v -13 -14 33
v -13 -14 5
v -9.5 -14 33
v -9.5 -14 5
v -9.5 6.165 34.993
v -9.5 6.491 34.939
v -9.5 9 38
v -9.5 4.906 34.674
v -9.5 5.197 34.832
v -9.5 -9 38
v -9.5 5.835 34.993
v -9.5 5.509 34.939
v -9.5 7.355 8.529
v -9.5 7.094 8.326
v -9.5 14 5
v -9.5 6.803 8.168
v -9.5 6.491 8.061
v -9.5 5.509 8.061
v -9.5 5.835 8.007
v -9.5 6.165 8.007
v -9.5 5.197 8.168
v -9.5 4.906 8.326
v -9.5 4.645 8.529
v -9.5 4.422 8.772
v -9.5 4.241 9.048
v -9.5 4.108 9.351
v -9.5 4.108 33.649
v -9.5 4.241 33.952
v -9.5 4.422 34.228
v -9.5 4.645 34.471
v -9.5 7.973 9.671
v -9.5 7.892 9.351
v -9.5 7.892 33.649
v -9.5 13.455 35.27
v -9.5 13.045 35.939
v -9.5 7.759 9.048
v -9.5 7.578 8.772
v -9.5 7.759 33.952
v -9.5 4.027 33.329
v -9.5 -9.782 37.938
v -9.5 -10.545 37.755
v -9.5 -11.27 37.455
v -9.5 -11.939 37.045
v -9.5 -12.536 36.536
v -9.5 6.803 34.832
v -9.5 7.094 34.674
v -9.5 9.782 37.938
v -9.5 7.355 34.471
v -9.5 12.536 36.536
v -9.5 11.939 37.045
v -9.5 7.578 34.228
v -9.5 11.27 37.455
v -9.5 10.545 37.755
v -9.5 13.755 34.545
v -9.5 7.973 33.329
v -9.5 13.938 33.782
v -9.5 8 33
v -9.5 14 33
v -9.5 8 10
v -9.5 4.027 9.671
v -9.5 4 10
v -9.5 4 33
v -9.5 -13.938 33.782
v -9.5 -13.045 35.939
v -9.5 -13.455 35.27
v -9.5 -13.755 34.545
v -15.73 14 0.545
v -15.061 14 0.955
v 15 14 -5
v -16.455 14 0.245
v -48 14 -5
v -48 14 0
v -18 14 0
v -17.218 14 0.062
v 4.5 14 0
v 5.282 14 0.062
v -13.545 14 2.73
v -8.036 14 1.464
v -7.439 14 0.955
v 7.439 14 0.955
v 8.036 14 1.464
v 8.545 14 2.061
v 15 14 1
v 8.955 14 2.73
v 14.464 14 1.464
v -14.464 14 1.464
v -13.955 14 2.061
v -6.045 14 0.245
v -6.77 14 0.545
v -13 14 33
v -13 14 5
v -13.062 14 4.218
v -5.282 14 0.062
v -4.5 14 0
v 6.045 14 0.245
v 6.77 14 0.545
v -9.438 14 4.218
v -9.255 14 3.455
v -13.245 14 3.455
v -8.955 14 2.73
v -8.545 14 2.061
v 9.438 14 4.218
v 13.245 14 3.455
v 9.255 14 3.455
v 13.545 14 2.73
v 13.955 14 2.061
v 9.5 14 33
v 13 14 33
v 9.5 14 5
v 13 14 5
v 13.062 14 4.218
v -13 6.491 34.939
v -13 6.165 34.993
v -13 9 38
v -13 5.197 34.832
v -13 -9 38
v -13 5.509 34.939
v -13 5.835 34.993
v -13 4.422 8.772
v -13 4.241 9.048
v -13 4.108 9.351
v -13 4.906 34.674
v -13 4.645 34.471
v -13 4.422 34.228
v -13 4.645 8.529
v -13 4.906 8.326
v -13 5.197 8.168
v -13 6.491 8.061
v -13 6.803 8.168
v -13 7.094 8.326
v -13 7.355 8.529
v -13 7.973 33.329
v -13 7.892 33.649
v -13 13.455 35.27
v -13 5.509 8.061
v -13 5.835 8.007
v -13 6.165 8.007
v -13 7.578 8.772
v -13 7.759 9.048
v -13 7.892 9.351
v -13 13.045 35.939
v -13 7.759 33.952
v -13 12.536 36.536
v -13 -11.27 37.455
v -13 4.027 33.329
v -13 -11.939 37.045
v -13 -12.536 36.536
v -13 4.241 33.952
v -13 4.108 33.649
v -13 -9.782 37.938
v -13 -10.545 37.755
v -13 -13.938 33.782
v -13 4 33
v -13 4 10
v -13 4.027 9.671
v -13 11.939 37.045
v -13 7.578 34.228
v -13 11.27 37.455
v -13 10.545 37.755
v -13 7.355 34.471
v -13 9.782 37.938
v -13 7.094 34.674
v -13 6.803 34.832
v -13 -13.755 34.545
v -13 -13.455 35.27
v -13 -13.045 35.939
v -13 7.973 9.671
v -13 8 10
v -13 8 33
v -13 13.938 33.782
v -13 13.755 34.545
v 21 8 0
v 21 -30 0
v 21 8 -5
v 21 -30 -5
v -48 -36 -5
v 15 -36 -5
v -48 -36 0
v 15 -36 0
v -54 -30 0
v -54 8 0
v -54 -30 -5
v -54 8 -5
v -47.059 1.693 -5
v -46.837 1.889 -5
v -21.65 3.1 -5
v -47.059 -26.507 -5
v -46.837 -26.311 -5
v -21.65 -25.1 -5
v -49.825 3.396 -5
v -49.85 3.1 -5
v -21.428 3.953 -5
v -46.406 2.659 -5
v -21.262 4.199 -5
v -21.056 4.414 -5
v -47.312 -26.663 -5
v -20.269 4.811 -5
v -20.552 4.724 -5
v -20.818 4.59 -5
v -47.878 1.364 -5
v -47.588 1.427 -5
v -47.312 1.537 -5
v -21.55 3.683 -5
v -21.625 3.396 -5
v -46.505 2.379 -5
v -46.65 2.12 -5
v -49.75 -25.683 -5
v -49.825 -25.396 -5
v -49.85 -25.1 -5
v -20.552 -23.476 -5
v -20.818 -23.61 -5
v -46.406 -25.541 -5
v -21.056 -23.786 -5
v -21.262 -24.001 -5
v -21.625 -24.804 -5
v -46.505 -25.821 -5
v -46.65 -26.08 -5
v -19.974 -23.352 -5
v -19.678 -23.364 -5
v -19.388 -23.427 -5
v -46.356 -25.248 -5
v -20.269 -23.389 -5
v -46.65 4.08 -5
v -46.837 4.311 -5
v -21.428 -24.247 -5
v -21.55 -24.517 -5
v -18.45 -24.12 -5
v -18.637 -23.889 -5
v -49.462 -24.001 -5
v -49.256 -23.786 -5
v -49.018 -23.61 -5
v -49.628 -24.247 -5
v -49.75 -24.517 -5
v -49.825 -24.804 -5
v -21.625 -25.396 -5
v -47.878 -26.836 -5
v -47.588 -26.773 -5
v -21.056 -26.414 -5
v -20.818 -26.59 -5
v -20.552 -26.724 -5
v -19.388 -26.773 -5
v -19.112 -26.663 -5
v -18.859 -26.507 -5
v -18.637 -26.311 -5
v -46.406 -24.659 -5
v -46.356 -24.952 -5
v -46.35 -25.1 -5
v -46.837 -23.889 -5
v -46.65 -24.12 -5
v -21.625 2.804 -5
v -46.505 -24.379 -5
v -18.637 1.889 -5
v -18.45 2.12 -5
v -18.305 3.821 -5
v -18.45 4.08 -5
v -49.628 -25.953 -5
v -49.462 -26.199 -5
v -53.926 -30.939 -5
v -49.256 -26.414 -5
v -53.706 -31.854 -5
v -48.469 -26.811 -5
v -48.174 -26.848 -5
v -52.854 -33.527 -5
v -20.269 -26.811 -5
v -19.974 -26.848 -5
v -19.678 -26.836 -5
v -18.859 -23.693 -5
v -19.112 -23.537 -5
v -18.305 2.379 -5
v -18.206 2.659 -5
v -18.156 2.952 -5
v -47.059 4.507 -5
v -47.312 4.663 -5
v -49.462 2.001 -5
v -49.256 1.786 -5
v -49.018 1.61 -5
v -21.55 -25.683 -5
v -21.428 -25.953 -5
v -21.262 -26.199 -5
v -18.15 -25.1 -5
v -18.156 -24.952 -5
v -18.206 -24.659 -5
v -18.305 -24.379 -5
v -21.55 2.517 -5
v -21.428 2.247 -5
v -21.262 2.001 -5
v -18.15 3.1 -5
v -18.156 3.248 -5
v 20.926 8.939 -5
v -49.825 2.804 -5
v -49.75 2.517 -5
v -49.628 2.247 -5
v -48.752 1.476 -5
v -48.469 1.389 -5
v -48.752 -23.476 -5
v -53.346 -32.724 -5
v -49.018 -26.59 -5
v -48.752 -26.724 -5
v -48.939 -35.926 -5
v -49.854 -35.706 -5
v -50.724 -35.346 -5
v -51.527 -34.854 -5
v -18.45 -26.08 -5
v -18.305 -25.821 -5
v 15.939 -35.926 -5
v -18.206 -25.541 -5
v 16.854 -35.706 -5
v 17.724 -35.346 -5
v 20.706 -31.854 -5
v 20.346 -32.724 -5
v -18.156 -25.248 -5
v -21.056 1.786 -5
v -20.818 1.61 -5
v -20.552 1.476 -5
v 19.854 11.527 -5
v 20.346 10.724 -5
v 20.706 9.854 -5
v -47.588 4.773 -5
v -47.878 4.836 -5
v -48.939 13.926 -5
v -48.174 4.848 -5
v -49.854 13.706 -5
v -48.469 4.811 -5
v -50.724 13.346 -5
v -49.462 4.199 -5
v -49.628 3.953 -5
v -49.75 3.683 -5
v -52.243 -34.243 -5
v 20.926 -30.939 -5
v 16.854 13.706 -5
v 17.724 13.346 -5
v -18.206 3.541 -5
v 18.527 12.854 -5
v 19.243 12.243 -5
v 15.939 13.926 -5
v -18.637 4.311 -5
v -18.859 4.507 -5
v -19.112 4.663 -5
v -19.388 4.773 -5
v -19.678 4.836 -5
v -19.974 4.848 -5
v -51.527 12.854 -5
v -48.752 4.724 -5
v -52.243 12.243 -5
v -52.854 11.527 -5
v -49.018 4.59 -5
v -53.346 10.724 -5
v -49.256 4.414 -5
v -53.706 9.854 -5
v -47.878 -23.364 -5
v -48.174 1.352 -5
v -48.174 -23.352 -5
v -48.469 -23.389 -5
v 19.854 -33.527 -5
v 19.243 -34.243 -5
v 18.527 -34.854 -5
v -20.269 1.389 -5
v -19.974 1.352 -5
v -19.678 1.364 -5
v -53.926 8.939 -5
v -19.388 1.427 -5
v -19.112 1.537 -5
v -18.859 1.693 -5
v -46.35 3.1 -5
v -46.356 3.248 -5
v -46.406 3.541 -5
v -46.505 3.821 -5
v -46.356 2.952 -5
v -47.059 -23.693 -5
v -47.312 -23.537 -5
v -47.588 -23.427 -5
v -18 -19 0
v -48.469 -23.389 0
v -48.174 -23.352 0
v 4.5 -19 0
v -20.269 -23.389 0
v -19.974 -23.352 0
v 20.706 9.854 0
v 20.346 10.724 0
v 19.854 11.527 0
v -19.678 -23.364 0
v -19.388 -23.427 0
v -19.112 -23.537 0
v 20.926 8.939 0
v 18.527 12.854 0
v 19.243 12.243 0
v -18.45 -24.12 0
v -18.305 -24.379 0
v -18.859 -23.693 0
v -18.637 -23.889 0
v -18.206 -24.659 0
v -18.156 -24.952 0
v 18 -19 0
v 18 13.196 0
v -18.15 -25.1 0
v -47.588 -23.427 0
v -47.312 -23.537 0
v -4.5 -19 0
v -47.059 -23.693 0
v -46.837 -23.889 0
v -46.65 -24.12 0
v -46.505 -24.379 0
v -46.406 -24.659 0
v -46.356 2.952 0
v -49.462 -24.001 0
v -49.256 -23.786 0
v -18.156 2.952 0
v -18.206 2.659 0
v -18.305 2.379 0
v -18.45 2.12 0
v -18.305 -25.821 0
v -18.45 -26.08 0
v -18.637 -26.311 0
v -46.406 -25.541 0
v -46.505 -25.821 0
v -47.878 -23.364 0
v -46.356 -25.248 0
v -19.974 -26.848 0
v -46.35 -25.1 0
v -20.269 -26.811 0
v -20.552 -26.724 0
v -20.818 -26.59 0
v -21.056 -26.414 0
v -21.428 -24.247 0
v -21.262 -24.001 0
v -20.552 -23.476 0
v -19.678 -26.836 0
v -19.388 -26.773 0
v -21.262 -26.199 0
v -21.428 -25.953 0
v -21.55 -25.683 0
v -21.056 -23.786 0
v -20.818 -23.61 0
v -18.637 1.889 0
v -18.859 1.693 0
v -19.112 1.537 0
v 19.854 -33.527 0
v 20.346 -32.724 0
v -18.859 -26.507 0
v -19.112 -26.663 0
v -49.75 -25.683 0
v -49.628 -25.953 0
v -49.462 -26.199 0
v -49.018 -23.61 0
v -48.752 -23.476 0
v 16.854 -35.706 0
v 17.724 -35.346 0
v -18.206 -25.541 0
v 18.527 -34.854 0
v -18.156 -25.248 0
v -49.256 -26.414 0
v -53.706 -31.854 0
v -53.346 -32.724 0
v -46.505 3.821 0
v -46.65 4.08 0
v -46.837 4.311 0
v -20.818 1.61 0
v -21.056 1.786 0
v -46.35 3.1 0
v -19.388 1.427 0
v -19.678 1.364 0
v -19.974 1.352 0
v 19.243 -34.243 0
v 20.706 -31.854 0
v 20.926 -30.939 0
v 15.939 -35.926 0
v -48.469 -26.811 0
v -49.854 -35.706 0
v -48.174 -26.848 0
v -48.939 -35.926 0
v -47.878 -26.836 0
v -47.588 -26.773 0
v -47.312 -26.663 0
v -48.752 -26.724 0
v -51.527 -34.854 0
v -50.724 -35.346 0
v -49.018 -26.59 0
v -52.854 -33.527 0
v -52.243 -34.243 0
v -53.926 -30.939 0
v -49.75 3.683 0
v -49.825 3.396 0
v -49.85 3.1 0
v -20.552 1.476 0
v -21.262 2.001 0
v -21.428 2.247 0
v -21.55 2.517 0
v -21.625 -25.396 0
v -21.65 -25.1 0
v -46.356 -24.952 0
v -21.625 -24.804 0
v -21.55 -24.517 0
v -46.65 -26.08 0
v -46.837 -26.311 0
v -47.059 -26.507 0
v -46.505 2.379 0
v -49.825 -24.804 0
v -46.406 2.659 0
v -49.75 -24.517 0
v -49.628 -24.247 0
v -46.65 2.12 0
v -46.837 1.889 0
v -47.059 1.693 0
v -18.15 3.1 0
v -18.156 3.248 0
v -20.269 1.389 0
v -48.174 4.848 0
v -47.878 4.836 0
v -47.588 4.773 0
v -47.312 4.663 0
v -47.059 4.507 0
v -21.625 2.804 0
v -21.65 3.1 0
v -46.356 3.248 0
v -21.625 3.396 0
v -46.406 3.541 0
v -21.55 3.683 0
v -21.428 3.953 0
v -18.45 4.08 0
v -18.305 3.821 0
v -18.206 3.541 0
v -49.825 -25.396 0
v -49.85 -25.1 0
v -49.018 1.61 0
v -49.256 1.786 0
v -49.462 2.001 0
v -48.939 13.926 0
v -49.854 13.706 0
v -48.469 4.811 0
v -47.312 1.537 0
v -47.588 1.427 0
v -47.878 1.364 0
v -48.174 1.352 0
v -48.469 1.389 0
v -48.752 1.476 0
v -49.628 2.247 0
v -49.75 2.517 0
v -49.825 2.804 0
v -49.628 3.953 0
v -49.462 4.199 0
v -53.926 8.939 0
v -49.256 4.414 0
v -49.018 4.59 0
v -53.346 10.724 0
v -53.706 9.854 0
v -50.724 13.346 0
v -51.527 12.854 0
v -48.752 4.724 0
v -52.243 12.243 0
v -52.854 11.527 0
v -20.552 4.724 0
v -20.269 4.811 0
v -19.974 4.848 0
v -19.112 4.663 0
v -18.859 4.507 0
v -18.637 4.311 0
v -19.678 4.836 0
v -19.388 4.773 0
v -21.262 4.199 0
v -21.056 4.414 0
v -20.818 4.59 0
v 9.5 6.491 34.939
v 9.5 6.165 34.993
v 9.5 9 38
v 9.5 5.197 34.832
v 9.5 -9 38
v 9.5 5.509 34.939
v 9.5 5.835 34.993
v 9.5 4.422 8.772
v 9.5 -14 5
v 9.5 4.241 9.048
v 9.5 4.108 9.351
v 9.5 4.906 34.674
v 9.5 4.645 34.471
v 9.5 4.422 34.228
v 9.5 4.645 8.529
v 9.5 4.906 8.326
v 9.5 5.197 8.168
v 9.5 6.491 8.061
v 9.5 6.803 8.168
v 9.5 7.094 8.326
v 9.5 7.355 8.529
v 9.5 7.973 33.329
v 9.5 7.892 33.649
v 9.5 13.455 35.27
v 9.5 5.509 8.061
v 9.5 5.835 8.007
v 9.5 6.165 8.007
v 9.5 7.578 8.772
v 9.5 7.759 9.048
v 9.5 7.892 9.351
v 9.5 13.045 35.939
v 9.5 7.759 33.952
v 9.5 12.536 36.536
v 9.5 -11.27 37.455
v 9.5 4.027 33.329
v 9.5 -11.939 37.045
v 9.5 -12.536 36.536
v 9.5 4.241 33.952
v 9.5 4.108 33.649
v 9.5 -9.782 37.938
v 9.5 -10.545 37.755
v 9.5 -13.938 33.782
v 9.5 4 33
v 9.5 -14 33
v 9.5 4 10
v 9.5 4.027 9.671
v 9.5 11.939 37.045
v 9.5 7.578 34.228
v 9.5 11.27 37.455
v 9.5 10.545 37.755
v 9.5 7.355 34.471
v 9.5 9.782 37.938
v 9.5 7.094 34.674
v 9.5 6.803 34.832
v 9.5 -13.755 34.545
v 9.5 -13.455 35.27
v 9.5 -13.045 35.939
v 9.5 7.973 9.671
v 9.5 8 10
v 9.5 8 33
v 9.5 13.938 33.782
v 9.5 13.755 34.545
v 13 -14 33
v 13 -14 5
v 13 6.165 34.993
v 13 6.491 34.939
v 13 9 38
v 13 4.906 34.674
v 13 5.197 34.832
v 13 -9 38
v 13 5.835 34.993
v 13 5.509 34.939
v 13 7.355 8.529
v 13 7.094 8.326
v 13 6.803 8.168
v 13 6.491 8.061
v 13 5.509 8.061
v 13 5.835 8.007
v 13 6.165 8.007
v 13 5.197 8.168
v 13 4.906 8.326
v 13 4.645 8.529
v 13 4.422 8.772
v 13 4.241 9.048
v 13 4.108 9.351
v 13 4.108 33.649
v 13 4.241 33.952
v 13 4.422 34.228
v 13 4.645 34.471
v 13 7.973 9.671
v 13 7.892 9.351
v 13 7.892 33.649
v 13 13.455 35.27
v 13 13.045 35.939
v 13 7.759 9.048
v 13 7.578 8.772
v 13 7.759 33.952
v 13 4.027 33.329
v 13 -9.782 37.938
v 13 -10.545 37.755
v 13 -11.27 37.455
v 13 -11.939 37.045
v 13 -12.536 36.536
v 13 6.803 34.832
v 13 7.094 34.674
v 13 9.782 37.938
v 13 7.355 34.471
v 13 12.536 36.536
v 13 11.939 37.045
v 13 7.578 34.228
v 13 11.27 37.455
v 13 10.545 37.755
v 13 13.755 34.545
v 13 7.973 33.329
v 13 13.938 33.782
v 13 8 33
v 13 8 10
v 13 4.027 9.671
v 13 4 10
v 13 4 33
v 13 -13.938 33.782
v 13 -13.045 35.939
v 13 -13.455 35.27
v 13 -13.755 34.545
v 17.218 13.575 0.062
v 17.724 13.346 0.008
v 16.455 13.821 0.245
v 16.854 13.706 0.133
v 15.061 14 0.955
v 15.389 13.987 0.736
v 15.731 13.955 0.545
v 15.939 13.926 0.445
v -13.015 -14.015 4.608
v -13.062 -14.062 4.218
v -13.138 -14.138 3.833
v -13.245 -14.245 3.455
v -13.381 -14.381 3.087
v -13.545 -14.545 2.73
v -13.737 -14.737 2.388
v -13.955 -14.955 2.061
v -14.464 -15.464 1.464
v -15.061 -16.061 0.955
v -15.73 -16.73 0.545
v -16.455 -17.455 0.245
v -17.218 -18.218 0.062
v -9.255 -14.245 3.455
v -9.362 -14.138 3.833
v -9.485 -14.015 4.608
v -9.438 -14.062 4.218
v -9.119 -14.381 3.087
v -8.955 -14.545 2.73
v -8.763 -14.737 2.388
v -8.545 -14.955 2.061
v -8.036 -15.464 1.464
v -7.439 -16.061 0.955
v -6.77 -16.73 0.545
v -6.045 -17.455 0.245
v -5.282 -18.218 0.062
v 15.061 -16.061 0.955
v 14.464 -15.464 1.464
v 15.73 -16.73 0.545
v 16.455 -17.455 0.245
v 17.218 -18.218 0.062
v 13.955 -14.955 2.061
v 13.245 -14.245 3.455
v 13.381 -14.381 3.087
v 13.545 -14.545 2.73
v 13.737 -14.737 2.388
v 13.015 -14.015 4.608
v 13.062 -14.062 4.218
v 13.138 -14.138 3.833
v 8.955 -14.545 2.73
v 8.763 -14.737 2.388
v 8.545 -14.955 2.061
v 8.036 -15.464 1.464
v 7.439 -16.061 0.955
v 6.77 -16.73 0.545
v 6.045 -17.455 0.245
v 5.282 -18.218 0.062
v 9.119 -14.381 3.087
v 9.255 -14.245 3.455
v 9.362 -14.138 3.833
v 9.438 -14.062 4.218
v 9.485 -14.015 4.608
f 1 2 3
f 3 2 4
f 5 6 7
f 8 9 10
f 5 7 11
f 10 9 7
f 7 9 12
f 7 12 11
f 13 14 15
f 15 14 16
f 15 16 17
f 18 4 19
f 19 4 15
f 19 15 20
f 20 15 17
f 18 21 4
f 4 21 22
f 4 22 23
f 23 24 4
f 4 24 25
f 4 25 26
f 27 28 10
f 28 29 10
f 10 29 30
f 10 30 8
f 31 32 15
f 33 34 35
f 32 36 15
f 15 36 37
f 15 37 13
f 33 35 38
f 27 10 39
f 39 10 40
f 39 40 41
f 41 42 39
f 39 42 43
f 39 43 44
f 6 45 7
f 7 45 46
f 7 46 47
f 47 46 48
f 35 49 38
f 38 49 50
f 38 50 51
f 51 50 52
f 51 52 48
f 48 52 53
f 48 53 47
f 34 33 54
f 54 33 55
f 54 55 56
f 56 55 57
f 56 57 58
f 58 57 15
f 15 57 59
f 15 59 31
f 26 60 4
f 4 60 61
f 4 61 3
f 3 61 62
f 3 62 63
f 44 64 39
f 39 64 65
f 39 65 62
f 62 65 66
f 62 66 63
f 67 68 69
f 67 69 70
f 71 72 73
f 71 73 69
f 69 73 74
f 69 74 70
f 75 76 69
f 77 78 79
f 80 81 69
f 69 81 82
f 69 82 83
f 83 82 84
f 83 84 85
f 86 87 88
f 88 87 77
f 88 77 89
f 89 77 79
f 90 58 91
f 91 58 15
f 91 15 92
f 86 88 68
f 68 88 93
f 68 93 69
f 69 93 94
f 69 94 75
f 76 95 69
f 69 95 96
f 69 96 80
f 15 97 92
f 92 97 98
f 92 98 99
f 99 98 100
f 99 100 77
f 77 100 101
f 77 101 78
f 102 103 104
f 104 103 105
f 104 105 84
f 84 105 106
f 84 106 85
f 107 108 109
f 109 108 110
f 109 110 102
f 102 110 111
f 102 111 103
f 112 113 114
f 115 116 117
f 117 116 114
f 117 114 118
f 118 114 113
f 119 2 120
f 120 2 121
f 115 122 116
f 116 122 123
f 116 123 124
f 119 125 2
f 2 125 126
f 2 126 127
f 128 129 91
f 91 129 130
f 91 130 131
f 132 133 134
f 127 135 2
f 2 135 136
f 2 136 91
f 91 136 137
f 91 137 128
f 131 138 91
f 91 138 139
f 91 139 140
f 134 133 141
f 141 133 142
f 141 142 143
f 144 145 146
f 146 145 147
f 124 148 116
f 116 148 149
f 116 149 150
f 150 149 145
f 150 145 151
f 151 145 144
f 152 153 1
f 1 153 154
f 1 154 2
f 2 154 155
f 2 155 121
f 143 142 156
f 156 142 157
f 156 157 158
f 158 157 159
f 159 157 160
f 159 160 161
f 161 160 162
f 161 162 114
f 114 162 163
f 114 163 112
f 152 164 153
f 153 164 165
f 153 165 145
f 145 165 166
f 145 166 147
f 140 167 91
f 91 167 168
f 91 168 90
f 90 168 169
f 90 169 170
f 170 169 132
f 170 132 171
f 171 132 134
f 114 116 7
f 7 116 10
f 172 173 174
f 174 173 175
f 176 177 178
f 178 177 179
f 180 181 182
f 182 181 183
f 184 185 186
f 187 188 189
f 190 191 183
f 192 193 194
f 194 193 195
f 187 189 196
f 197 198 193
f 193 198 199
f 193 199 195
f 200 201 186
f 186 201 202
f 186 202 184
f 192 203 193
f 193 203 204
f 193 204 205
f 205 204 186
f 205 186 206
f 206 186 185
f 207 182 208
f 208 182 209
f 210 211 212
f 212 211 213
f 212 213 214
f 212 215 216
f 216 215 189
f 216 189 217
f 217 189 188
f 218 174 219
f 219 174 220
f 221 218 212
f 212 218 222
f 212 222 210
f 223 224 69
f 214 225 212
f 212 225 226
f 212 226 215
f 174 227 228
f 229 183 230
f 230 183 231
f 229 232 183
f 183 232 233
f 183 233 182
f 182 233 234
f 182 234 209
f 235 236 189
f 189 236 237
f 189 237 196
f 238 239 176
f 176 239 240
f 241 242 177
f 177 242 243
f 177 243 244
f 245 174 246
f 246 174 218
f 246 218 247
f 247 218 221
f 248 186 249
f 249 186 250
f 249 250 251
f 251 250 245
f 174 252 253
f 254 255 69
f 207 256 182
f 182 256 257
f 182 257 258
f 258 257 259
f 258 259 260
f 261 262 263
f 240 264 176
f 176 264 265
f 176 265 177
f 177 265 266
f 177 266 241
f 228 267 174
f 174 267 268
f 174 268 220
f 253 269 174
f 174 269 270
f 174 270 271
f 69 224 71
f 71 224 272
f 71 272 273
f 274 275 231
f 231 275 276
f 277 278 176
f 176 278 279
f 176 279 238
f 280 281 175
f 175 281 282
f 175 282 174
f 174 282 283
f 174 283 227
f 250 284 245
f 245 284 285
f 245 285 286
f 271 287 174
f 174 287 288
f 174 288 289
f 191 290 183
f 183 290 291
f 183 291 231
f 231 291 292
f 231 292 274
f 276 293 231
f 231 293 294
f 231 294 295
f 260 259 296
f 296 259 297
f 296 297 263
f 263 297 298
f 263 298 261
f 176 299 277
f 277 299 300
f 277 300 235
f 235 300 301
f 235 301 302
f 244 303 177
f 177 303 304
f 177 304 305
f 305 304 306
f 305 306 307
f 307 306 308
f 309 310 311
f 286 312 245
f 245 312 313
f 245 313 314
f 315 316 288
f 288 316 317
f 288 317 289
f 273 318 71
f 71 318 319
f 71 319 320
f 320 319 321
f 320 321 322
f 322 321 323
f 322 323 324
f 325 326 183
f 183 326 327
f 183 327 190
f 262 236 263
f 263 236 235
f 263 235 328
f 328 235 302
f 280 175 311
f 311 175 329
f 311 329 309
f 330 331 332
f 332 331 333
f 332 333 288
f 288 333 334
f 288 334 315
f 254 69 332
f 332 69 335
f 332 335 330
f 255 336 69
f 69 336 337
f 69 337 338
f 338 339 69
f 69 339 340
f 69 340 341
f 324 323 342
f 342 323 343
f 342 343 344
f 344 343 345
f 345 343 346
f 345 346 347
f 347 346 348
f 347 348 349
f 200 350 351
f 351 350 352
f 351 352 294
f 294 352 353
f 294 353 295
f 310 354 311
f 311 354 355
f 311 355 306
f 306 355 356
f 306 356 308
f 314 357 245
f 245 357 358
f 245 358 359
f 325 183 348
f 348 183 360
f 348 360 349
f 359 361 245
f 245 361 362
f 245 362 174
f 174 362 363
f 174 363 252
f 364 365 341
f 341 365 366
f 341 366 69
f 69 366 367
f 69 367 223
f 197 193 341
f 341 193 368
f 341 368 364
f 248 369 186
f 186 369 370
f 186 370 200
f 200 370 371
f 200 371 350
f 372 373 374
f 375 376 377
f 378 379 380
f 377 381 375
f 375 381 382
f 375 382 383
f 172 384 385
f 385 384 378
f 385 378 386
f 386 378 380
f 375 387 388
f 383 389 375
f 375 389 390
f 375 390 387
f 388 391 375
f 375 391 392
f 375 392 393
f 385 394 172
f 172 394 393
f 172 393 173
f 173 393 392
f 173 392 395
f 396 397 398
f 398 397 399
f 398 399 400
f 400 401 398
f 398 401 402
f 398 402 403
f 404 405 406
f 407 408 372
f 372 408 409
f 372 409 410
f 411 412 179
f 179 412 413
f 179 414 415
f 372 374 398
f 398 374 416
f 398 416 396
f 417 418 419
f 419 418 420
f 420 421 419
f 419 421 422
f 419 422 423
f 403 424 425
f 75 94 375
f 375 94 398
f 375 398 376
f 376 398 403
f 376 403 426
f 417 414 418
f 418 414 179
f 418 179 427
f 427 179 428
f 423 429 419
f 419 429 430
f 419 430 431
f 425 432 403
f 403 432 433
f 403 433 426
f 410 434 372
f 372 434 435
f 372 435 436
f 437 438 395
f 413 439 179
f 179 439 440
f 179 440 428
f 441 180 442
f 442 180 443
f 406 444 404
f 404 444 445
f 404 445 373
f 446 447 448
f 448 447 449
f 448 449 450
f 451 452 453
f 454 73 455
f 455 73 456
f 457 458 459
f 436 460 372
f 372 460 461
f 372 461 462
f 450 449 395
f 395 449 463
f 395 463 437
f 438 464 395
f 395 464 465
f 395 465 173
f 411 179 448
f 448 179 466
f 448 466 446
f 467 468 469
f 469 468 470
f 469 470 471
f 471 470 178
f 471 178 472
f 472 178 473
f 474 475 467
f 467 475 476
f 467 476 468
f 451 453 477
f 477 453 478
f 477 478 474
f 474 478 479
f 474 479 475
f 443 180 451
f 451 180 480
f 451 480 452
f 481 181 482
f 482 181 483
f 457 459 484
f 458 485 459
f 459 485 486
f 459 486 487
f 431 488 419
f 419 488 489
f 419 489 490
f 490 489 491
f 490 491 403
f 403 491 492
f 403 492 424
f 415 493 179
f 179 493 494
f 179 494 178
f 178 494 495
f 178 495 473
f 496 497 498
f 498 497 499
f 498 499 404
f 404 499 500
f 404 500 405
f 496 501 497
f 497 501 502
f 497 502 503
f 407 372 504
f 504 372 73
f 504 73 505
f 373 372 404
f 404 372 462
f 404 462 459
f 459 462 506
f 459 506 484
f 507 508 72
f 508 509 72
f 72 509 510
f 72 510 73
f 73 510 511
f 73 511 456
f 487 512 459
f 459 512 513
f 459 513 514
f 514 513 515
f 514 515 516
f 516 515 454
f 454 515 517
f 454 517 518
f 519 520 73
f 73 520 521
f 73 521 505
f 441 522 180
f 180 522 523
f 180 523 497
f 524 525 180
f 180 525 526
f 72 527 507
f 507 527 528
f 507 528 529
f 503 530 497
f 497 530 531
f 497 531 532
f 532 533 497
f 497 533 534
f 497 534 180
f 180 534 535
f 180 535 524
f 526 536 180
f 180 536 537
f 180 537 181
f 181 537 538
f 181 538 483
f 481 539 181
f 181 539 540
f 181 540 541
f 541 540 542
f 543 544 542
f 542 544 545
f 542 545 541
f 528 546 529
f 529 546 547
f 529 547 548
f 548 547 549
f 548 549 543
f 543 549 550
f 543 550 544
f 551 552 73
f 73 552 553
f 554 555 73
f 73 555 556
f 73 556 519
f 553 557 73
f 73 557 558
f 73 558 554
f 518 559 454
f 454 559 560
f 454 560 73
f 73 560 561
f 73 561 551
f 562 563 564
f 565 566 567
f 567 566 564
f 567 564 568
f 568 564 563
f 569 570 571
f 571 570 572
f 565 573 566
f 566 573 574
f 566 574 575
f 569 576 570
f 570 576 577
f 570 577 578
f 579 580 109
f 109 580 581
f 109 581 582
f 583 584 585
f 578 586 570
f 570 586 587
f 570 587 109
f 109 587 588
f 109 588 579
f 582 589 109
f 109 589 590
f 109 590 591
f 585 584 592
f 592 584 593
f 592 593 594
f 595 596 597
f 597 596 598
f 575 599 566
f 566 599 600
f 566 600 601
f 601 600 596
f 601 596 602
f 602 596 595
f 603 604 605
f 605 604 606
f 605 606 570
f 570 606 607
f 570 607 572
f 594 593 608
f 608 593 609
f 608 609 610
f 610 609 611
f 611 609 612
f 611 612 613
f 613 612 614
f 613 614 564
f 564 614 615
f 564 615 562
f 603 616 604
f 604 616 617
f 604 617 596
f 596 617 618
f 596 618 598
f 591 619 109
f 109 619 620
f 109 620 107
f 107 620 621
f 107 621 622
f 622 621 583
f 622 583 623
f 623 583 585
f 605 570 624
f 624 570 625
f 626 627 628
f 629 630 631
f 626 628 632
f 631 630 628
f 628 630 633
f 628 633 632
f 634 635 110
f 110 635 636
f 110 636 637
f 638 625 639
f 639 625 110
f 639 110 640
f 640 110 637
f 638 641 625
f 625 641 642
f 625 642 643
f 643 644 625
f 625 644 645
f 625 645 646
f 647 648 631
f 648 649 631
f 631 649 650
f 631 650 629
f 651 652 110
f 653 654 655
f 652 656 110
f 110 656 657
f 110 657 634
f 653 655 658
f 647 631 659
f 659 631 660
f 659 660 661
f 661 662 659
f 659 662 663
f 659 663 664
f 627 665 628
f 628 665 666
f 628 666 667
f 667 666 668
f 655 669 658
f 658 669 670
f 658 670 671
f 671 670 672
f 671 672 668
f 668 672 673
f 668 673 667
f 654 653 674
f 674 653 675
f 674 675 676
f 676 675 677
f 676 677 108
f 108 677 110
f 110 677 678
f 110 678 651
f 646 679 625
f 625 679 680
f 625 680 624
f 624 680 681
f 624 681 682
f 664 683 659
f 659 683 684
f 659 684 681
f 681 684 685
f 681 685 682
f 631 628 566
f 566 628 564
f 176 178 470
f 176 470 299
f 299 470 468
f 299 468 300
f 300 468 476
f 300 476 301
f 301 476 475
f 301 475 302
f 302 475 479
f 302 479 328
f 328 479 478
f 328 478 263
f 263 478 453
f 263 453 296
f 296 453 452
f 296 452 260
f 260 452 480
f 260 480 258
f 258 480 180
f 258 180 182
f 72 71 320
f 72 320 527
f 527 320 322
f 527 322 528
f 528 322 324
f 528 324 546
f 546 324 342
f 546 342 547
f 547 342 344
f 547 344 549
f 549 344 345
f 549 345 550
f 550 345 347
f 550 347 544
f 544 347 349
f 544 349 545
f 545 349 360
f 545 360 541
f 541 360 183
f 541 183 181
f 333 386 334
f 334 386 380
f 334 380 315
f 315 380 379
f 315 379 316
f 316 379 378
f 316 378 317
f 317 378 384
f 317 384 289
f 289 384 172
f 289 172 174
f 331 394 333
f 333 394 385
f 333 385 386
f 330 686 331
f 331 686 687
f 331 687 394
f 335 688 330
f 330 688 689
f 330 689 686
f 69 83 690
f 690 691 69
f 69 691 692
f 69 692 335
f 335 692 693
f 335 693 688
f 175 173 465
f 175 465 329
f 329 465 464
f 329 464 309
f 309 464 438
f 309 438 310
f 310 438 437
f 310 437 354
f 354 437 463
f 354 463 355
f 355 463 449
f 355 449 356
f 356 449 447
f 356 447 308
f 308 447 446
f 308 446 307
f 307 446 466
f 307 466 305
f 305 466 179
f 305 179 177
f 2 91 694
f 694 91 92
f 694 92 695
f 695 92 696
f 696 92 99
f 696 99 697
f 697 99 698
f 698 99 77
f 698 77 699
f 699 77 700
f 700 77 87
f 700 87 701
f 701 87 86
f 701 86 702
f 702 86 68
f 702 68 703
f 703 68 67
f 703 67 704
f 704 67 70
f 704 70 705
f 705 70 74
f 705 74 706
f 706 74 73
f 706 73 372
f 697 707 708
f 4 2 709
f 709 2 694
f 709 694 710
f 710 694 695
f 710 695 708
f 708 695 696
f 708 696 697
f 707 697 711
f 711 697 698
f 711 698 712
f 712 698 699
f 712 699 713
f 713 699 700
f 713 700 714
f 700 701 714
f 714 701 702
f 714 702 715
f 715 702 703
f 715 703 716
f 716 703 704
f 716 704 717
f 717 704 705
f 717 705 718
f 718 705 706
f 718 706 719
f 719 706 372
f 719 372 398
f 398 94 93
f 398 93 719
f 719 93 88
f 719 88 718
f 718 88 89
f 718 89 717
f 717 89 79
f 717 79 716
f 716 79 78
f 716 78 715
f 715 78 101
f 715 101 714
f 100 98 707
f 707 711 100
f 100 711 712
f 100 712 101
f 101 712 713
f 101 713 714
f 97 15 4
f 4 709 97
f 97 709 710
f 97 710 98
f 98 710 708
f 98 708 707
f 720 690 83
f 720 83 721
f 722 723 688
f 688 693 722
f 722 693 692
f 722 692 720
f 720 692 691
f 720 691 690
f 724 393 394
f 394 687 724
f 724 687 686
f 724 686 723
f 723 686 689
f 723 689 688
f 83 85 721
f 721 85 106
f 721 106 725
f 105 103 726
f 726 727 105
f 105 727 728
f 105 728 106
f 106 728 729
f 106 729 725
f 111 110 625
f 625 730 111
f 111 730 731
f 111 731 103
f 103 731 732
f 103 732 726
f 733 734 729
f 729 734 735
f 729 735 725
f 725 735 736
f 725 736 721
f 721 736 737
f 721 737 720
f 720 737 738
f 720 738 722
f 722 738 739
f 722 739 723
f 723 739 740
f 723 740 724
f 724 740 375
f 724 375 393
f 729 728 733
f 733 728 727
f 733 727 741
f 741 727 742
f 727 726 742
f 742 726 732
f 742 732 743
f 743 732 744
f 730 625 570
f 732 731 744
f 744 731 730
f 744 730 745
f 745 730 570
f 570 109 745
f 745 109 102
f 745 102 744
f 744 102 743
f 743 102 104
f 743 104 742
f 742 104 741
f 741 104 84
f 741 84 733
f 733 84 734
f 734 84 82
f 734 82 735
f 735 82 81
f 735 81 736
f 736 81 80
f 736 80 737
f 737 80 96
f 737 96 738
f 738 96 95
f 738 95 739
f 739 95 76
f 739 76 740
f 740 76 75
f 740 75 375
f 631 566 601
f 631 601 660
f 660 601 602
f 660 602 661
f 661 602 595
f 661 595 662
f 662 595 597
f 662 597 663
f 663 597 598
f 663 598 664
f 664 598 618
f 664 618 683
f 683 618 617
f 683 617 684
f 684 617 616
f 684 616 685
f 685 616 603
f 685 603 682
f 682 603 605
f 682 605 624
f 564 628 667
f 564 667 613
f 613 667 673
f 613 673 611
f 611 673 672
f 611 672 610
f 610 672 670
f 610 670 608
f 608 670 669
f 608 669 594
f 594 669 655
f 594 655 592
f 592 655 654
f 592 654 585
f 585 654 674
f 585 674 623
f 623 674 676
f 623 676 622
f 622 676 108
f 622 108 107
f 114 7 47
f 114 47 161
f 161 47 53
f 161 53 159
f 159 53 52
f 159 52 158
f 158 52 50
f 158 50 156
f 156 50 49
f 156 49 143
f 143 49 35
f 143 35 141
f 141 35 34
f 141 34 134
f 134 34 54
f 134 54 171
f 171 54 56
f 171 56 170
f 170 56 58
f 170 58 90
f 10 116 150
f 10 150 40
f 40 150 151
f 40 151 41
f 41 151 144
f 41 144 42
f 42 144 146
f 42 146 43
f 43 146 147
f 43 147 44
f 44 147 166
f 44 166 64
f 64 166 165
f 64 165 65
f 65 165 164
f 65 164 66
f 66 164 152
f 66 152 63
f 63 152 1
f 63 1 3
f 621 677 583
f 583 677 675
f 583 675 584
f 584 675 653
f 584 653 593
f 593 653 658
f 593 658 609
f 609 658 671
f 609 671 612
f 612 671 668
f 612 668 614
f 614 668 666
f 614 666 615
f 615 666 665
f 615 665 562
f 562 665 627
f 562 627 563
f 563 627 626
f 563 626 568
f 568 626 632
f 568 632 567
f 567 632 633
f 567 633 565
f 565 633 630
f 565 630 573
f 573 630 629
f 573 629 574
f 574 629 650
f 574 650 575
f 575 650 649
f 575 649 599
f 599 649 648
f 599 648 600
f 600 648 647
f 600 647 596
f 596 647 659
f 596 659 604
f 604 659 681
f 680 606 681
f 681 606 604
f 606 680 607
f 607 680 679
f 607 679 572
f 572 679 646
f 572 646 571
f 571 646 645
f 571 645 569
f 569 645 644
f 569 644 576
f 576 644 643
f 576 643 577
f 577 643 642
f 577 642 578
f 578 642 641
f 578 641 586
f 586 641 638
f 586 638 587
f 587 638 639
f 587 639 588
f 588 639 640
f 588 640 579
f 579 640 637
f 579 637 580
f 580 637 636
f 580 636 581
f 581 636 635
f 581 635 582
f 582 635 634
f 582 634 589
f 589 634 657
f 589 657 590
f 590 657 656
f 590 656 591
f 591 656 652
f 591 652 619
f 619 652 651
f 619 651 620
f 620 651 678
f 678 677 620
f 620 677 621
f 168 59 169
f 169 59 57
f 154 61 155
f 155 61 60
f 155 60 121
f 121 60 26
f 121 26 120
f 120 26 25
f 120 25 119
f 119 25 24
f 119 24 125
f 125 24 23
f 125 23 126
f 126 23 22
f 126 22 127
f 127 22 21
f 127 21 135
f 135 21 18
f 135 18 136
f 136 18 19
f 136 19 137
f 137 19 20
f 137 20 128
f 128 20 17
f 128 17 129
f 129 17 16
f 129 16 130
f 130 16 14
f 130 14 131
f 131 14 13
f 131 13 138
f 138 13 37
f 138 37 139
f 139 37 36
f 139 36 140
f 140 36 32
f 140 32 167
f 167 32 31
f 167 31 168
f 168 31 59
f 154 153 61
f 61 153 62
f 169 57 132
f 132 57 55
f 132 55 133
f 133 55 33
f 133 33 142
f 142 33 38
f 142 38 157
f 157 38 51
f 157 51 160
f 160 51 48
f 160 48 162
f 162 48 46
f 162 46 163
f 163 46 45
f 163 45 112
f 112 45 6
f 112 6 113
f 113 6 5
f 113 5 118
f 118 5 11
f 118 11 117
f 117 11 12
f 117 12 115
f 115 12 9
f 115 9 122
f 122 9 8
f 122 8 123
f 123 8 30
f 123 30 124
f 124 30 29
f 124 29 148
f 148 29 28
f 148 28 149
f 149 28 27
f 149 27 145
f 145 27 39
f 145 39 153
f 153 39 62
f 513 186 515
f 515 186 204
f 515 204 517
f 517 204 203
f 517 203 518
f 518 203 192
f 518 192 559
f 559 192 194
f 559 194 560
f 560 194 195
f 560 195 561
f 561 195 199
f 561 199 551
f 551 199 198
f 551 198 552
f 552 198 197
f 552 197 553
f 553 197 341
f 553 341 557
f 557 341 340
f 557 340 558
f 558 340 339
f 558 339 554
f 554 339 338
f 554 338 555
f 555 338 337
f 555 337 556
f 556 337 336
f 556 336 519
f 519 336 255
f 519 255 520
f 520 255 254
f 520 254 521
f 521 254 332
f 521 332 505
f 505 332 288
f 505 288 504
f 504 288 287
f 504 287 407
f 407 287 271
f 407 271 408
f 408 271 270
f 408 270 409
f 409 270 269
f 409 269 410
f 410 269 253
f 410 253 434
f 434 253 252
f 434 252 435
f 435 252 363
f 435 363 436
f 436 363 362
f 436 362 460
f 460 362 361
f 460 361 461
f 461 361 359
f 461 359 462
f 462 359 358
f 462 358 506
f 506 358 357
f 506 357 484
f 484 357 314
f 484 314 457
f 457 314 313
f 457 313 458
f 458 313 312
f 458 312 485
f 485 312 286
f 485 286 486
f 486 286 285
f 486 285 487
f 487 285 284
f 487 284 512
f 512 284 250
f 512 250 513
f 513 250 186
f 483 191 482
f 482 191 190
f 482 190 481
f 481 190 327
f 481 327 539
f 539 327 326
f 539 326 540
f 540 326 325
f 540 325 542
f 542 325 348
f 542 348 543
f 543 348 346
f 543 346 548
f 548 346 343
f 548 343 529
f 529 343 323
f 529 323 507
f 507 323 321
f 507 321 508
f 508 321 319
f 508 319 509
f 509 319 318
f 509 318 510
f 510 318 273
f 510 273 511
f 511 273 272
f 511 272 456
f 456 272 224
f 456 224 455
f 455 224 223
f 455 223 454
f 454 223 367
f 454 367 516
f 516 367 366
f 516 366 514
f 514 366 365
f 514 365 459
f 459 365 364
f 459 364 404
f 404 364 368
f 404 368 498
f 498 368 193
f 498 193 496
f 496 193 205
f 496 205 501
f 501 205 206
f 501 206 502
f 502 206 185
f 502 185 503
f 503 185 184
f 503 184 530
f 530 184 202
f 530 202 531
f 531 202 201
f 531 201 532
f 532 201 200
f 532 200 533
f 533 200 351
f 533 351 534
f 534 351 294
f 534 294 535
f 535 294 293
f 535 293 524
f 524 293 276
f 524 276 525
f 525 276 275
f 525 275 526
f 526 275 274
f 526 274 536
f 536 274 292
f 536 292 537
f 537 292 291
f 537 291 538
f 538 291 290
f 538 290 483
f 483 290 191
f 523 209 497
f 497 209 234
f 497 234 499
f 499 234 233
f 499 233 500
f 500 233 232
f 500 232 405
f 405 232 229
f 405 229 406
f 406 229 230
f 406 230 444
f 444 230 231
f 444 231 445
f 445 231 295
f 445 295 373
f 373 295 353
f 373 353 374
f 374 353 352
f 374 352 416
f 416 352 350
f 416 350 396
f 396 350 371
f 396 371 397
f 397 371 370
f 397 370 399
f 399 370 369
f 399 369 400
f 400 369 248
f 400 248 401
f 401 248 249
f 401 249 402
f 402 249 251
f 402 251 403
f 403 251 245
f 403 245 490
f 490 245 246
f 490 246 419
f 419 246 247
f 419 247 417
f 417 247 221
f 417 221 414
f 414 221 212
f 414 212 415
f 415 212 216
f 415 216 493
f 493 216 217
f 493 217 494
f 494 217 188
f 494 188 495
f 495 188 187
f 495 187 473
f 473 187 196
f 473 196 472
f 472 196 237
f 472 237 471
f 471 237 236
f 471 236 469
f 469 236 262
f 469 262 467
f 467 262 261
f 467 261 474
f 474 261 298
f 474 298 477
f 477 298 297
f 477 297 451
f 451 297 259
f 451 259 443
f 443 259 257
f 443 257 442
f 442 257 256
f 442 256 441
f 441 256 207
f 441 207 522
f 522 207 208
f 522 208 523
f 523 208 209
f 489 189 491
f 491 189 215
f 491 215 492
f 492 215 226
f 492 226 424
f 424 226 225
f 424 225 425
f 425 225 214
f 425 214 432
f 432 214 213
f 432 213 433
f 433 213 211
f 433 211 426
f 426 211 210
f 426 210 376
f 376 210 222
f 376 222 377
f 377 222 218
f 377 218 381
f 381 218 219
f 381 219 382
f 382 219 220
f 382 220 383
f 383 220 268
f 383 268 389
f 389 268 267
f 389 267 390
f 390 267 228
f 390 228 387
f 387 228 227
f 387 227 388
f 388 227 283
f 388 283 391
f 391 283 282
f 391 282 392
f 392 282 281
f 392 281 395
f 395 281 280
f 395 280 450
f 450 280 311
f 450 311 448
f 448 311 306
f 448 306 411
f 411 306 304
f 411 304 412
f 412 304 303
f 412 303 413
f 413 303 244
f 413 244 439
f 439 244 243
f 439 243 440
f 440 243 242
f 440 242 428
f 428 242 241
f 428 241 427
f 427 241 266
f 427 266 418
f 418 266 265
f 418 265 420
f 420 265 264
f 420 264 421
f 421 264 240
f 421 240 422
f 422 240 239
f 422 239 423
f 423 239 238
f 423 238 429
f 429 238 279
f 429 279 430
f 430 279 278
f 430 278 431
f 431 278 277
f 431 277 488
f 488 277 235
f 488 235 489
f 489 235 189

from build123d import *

# Parameters (mm, degrees)
SKETCH1_W               = 3.5
SKETCH1_H               = 28
BOSS_EXTRUDE1_DEPTH     = 38
BOSS_EXTRUDE1_2_DEPTH   = 38
SKETCH2_W               = 75
SKETCH2_H               = 50
BOSS_EXTRUDE2_DEPTH     = 5
FILLET1_R               = 6
FILLET2_R               = 5
CUT_EXTRUDE1_DEPTH      = 9.0000001
CUT_EXTRUDE1_DEPTH_BACK = 68
SKETCH4_R               = 1.75
CUT_EXTRUDE2_DEPTH      = 1.0000001
CUT_EXTRUDE2_DEPTH_BACK = 44


with BuildPart() as part:
    # Sketch1 → Boss-Extrude1 (new body)
    with BuildSketch(Plane.XY):
        with Locations((-11.25, 0)):
            Rectangle(SKETCH1_W, SKETCH1_H)
    extrude(amount=BOSS_EXTRUDE1_DEPTH)



with BuildPart() as body_2:
    # Sketch1 → Boss-Extrude1 2 (new body)
    with BuildSketch(Plane.XY):
        with Locations((11.25, 0)):
            Rectangle(SKETCH1_W, SKETCH1_H)
    extrude(amount=BOSS_EXTRUDE1_2_DEPTH)


with BuildPart() as part_1:
    add(part.part)

    add(body_2.part)  # Boss-Extrude2 merges body 2
    # Sketch2 → Boss-Extrude2 (add)
    with BuildSketch(Plane(origin=(0, 0, 0), x_dir=(-1, 0, 0), z_dir=(0, 0, -1))):
        with Locations((16.5, -11)):
            Rectangle(SKETCH2_W, SKETCH2_H)
    extrude(amount=BOSS_EXTRUDE2_DEPTH)

    # Fillet1
    fillet1_edges = [part_1.edges().sort_by_distance(p)[0] for p in [
        (-54, 14, -2.5),
        (21, 14, -2.5),
        (21, -36, -2.5),
        (-54, -36, -2.5),
    ]]
    fillet(fillet1_edges, radius=FILLET1_R)

    # Fillet2
    fillet2_edges = [part_1.edges().sort_by_distance(p)[0] for p in [
        (-11.25, 14, 38),
        (11.25, -14, 0),
        (13, 0, 0),
        (11.25, 14, 38),
        (11.25, -14, 38),
        (9.5, 0, 0),
        (-11.25, -14, 38),
        (-13, 0, 0),
        (-9.5, 0, 0),
        (-11.25, -14, 0),
    ]]
    fillet(fillet2_edges, radius=FILLET2_R)

    # Sketch3 → Cut-Extrude1 (cut, two sides)
    with BuildSketch(Plane(origin=(13, 0, 0), x_dir=(0, 0, -1), z_dir=(1, 0, 0))) as cut_extrude1_sk:
        with BuildLine():
            Line((-10, 4), (-33, 4))
            ThreePointArc((-33, 4), (-35, 6), (-33, 8))
            Line((-33, 8), (-10, 8))
            ThreePointArc((-10, 8), (-8, 6), (-10, 4))
        make_face()
    extrude(amount=CUT_EXTRUDE1_DEPTH, mode=Mode.SUBTRACT)
    extrude(cut_extrude1_sk.sketch, amount=-CUT_EXTRUDE1_DEPTH_BACK, mode=Mode.SUBTRACT)

    # Sketch4 → Cut-Extrude2 (cut, two sides)
    with BuildSketch(Plane(origin=(0, 0, -5), x_dir=(-1, 0, 0), z_dir=(0, 0, -1))) as cut_extrude2_sk:
        with Locations((19.9, 3.1)):
            Circle(SKETCH4_R)
        with Locations((48.1, 3.1)):
            Circle(SKETCH4_R)
        with Locations((48.1, -25.1)):
            Circle(SKETCH4_R)
        with Locations((19.9, -25.1)):
            Circle(SKETCH4_R)
    extrude(amount=CUT_EXTRUDE2_DEPTH, mode=Mode.SUBTRACT)
    extrude(cut_extrude2_sk.sketch, amount=-CUT_EXTRUDE2_DEPTH_BACK, mode=Mode.SUBTRACT)


solid = part_1.part
